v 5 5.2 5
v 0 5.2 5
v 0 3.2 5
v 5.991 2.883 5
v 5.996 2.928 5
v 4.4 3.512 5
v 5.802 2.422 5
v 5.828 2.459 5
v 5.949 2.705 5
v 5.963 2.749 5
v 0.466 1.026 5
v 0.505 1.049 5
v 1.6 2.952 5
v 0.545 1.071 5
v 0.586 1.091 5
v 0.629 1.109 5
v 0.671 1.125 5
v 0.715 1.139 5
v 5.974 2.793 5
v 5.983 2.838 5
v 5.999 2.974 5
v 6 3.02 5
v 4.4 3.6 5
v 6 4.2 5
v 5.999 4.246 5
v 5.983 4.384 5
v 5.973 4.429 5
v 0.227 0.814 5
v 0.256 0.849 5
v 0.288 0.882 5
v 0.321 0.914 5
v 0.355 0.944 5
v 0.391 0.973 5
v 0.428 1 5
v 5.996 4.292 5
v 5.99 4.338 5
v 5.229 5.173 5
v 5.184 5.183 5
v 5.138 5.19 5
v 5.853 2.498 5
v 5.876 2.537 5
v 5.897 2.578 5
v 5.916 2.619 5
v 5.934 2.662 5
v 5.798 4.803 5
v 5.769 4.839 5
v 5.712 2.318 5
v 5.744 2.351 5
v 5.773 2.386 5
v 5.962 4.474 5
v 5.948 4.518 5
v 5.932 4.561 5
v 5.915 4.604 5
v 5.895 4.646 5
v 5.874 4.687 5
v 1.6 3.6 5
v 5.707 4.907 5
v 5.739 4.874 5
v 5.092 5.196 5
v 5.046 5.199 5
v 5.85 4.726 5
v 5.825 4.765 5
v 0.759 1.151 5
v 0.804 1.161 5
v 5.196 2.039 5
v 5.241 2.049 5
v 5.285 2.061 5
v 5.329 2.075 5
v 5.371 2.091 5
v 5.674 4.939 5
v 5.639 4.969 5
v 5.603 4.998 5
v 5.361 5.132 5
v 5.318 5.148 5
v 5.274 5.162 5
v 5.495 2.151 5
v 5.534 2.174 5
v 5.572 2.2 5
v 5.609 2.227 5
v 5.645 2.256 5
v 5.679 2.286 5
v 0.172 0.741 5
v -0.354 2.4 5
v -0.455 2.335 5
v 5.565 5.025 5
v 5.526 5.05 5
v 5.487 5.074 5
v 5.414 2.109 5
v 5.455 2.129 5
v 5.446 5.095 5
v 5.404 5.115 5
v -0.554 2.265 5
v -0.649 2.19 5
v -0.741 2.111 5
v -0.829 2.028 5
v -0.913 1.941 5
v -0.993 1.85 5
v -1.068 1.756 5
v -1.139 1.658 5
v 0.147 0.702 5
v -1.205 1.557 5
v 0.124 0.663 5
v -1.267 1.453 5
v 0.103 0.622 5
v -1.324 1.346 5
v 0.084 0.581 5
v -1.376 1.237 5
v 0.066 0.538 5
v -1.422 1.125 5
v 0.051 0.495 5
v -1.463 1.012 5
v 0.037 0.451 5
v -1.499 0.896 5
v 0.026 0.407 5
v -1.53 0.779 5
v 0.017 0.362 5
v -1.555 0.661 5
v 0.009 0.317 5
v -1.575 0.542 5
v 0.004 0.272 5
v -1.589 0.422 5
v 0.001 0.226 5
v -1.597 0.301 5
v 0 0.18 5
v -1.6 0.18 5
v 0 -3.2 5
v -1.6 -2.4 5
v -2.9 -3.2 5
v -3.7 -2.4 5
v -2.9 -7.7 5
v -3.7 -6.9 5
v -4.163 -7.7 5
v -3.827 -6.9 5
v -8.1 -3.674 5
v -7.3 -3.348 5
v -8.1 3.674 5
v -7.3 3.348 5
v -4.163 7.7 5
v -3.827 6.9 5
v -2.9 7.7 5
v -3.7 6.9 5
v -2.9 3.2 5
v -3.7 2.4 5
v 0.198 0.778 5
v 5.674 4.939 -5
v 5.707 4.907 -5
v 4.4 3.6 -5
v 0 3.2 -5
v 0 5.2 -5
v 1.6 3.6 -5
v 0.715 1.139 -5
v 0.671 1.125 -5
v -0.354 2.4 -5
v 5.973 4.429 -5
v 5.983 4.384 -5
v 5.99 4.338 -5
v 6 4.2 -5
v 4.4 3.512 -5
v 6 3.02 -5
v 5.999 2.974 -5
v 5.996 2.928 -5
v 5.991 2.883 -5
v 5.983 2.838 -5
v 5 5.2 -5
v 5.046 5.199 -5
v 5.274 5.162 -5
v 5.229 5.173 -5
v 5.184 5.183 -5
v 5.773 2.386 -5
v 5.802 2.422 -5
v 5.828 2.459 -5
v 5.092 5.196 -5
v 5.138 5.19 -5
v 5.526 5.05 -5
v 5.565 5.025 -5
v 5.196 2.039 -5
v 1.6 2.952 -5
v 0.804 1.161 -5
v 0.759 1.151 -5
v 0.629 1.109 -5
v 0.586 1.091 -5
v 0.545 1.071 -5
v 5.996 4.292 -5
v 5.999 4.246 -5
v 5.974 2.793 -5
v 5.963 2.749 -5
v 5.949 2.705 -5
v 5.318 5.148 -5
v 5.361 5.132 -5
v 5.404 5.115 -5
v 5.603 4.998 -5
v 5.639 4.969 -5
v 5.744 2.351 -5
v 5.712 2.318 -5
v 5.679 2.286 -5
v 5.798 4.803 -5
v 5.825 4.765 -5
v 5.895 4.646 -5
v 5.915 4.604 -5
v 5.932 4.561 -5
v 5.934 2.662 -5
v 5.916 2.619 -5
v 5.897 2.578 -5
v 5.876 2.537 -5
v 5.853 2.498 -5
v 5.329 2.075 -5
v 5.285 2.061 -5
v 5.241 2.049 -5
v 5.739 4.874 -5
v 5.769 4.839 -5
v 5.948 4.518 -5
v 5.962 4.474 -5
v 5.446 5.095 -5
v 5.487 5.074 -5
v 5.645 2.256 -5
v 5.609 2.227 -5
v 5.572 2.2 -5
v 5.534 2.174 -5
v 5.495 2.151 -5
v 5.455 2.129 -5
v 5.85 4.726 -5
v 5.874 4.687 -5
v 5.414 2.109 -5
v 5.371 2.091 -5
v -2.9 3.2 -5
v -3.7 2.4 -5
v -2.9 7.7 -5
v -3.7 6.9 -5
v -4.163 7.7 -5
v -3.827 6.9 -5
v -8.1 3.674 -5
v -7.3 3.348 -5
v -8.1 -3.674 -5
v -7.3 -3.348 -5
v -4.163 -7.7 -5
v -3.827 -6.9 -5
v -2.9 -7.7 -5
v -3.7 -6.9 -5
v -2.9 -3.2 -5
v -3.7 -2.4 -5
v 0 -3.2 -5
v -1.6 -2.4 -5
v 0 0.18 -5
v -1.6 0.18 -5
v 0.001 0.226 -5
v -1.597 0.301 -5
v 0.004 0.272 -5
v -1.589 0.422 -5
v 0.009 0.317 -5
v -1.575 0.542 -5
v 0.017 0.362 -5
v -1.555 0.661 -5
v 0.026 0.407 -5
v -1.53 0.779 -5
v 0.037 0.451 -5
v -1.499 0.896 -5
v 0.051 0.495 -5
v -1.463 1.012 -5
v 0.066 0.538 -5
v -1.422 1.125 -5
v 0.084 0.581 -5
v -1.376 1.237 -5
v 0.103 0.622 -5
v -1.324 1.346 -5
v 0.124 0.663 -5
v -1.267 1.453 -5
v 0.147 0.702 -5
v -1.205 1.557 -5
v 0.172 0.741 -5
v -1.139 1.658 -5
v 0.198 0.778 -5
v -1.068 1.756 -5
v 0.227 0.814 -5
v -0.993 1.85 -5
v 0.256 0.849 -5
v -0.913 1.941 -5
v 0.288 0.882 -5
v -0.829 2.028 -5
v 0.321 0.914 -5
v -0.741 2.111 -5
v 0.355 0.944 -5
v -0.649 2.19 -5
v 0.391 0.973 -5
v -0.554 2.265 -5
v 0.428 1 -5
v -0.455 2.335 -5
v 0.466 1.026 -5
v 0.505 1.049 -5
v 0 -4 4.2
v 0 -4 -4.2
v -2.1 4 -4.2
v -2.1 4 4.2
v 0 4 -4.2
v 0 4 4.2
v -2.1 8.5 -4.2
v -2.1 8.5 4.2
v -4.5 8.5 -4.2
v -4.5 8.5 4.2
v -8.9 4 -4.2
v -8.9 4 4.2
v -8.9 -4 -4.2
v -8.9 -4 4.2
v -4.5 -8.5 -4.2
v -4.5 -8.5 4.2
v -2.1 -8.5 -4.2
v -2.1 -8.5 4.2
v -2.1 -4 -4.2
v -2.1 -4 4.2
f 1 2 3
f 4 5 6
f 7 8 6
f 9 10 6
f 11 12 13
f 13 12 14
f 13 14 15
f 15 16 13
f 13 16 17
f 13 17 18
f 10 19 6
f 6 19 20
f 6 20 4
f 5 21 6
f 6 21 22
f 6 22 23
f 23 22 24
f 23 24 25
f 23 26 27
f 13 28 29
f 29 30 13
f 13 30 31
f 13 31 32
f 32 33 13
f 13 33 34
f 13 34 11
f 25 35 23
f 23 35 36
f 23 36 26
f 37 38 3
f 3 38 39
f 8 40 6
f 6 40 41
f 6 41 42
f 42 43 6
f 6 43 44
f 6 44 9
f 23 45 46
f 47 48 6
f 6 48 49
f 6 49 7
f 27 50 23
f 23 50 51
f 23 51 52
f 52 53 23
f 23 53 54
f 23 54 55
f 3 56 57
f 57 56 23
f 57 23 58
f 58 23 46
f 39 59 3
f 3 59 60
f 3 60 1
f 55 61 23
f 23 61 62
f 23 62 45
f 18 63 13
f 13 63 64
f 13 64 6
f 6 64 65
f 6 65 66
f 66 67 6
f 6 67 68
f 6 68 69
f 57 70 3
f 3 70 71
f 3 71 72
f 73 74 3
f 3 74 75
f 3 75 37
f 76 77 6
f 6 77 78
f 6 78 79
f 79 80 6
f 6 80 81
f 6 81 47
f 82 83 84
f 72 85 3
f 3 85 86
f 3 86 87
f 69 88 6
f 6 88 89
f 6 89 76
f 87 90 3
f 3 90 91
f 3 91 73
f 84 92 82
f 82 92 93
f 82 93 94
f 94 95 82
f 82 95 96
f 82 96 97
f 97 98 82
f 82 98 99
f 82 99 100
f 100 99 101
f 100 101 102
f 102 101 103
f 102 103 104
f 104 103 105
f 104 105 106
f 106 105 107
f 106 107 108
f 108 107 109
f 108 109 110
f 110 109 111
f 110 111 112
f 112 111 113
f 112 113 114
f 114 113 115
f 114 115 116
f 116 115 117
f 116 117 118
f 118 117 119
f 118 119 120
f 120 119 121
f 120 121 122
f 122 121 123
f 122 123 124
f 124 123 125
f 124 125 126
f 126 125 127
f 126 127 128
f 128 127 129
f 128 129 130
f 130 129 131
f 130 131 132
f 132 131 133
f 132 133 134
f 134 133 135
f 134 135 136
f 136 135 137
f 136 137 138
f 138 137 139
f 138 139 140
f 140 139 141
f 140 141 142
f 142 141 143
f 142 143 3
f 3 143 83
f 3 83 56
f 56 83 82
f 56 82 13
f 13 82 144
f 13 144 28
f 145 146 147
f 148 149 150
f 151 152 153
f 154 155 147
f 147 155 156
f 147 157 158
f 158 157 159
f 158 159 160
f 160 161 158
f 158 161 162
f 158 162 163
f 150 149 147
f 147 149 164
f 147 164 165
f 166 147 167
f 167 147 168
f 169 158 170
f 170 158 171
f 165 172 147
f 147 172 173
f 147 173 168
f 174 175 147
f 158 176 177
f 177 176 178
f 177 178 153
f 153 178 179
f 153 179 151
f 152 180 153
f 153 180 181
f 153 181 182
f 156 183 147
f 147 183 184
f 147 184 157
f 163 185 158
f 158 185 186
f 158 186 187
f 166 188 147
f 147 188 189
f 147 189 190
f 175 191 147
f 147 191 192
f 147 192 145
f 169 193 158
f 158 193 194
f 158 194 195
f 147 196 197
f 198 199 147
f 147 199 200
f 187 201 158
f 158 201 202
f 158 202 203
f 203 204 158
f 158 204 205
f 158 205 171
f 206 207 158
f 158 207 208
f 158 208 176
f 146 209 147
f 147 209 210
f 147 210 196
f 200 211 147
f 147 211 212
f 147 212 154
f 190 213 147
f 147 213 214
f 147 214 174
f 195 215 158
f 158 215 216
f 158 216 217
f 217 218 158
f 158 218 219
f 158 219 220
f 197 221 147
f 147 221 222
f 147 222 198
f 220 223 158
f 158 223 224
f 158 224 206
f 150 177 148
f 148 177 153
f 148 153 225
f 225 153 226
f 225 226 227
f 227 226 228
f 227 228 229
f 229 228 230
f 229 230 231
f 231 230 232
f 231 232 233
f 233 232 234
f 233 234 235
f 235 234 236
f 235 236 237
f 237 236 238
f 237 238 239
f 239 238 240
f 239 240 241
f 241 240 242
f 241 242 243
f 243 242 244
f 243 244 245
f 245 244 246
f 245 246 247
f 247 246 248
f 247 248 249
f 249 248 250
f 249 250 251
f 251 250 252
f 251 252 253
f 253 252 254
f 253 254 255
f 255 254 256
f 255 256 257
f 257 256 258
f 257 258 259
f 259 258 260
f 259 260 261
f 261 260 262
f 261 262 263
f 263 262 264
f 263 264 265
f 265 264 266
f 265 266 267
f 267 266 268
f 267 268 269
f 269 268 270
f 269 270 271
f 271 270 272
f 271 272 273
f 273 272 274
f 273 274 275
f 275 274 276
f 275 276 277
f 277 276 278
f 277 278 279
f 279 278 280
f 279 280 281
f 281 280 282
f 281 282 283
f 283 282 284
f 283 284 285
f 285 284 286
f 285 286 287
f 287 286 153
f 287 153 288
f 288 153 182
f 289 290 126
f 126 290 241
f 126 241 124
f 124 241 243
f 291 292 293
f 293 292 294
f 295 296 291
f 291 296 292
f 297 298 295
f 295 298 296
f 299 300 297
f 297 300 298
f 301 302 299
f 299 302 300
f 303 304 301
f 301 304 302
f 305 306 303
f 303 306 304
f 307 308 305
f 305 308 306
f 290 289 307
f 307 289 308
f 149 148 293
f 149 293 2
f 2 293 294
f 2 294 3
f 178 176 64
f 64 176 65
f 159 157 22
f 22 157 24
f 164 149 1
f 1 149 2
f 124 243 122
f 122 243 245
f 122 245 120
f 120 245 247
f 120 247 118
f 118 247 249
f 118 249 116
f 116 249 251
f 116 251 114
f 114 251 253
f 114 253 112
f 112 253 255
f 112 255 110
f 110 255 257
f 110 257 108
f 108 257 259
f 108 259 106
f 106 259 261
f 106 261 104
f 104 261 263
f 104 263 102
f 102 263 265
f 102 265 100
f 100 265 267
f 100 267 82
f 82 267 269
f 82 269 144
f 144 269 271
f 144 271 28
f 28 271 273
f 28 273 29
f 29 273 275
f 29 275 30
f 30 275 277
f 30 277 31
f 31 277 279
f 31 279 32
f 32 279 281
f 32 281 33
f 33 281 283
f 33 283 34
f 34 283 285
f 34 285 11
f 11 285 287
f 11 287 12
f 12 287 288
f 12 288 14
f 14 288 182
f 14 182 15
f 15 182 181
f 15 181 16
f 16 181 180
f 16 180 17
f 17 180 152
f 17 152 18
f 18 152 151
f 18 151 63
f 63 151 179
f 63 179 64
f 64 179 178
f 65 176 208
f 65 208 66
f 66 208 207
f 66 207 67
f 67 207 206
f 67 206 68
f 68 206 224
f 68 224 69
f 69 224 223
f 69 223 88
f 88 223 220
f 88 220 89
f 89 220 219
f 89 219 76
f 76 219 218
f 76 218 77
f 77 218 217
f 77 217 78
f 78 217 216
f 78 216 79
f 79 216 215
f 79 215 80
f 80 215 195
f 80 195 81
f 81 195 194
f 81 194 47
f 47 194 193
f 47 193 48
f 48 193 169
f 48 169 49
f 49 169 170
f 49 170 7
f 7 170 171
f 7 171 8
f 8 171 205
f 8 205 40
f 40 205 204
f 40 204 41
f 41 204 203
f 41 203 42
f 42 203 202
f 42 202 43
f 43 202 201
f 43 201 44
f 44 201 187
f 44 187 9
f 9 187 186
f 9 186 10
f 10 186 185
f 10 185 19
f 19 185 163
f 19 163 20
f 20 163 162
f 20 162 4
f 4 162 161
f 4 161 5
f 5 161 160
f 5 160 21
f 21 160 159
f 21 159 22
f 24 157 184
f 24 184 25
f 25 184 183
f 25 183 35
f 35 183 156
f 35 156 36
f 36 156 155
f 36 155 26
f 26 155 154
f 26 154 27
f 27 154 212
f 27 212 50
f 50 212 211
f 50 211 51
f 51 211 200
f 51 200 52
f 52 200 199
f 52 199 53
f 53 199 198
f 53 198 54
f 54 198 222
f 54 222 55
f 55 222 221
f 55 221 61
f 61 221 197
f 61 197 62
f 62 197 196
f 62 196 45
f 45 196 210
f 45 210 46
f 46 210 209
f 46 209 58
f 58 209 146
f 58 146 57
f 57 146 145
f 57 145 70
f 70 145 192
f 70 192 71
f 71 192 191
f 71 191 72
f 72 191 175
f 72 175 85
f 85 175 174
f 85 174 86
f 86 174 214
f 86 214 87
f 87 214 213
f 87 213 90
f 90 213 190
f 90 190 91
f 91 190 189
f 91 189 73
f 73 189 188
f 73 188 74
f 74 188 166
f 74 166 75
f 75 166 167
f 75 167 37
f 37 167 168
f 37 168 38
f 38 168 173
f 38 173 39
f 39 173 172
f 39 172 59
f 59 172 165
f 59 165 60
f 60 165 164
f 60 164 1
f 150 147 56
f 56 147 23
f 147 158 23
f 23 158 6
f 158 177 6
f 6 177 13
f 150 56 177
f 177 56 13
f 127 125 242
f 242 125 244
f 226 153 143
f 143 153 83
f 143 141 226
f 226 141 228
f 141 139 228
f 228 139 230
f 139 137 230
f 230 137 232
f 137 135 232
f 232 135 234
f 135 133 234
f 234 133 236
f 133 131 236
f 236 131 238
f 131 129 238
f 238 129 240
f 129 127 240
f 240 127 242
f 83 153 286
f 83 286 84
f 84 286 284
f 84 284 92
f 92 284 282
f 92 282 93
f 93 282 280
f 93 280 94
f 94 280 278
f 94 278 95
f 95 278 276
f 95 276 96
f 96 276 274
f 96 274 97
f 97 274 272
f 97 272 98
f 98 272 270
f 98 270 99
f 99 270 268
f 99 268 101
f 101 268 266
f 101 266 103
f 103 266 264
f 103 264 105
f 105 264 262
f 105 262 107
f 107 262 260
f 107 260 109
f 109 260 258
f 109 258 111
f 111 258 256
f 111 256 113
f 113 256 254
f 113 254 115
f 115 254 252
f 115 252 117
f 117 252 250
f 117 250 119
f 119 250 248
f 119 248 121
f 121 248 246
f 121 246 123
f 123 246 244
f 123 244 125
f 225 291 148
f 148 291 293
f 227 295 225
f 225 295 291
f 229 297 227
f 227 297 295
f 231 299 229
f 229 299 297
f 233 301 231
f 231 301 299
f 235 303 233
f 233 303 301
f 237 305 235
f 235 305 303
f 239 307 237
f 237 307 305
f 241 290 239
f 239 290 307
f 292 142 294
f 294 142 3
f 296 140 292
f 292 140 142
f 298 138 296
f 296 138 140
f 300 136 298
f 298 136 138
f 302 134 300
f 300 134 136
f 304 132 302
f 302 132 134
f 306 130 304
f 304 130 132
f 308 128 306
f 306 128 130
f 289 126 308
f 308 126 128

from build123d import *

# Parameters (mm, degrees)
SALIENTE_EXTRUIR1_DEPTH = 5
SALIENTE_EXTRUIR2_DEPTH = 10
REDONDEO1_R             = 1
VACIADO1_START          = -5
VACIADO1_DEPTH          = 10
CHAFL_N1_SIZE           = 0.8


# Read off the part's stored shape, not the designer's step: Vaciado1
with BuildPart() as part:
    # Croquis1 → Saliente-Extruir1 (new, symmetric)
    with BuildSketch(Plane.XY):
        Polygon((0, 4), (-2.1, 4), (-2.1, 8.5), (-4.5, 8.5), (-8.9, 4), (-8.9, -4), (-4.5, -8.5), (-2.1, -8.5), (-2.1, -4), (0, -4), align=None)
    extrude(amount=SALIENTE_EXTRUIR1_DEPTH, both=True)

    # Croquis2 → Saliente-Extruir2 (add, through all)
    with BuildSketch(Plane(origin=(0, 0, -5), x_dir=(-1, 0, 0), z_dir=(0, 0, -1))):
        Polygon((0, 4), (0, 5.2), (-6, 5.2), (-6, 2.2), (0, 1), align=None)
    extrude(amount=-SALIENTE_EXTRUIR2_DEPTH)

    # Redondeo1
    redondeo1_edges = [part.edges().sort_by_distance(p)[0] for p in [
        (0, 1, 0),
        (6, 2.2, 0),
        (6, 5.2, 0),
    ]]
    fillet(redondeo1_edges, radius=REDONDEO1_R)

    # Vaciado1 outline → Vaciado1 (cut)
    with BuildSketch(Plane.XY.offset(VACIADO1_START)):
        Polygon((4.4, 3.511686244), (4.4, 3.6), (1.6, 3.6), (1.6, 2.951686244), align=None)
        with BuildLine():
            Line((-1.6, -2.4), (-1.6, 0.180196097))
            ThreePointArc((-1.6, 0.180196097), (-1.267111406, 1.453069175), (-0.35368779, 2.4))
            Line((-0.35368779, 2.4), (-3.7, 2.4))
            Line((-3.7, 2.4), (-3.7, 6.9))
            Line((-3.7, 6.9), (-3.826703079, 6.9))
            Line((-3.826703079, 6.9), (-7.3, 3.347764512))
            Line((-7.3, 3.347764512), (-7.3, -3.347764512))
            Line((-7.3, -3.347764512), (-3.826703079, -6.9))
            Line((-3.826703079, -6.9), (-3.7, -6.9))
            Line((-3.7, -6.9), (-3.7, -2.4))
            Line((-3.7, -2.4), (-1.6, -2.4))
        make_face()
    extrude(amount=VACIADO1_DEPTH, mode=Mode.SUBTRACT)

    # Chaflán1
    chafl_n1_edges = [part.edges().sort_by_distance(p)[0] for p in [
        (-1.05, -4, -5),
        (-2.1, -6.25, -5),
        (-3.3, -8.5, -5),
        (-6.7, -6.25, -5),
        (-8.9, 0, -5),
        (-6.7, 6.25, -5),
        (-3.3, 8.5, -5),
        (-2.1, 6.25, 5),
        (-2.1, 6.25, -5),
        (-1.05, 4, -5),
        (-3.3, 8.5, 5),
        (-6.7, 6.25, 5),
        (-8.9, 0, 5),
        (-6.7, -6.25, 5),
        (-3.3, -8.5, 5),
        (-2.1, -6.25, 5),
        (-1.05, -4, 5),
        (-1.05, 4, 5),
    ]]
    chamfer(chafl_n1_edges, length=CHAFL_N1_SIZE)


solid = part.part
